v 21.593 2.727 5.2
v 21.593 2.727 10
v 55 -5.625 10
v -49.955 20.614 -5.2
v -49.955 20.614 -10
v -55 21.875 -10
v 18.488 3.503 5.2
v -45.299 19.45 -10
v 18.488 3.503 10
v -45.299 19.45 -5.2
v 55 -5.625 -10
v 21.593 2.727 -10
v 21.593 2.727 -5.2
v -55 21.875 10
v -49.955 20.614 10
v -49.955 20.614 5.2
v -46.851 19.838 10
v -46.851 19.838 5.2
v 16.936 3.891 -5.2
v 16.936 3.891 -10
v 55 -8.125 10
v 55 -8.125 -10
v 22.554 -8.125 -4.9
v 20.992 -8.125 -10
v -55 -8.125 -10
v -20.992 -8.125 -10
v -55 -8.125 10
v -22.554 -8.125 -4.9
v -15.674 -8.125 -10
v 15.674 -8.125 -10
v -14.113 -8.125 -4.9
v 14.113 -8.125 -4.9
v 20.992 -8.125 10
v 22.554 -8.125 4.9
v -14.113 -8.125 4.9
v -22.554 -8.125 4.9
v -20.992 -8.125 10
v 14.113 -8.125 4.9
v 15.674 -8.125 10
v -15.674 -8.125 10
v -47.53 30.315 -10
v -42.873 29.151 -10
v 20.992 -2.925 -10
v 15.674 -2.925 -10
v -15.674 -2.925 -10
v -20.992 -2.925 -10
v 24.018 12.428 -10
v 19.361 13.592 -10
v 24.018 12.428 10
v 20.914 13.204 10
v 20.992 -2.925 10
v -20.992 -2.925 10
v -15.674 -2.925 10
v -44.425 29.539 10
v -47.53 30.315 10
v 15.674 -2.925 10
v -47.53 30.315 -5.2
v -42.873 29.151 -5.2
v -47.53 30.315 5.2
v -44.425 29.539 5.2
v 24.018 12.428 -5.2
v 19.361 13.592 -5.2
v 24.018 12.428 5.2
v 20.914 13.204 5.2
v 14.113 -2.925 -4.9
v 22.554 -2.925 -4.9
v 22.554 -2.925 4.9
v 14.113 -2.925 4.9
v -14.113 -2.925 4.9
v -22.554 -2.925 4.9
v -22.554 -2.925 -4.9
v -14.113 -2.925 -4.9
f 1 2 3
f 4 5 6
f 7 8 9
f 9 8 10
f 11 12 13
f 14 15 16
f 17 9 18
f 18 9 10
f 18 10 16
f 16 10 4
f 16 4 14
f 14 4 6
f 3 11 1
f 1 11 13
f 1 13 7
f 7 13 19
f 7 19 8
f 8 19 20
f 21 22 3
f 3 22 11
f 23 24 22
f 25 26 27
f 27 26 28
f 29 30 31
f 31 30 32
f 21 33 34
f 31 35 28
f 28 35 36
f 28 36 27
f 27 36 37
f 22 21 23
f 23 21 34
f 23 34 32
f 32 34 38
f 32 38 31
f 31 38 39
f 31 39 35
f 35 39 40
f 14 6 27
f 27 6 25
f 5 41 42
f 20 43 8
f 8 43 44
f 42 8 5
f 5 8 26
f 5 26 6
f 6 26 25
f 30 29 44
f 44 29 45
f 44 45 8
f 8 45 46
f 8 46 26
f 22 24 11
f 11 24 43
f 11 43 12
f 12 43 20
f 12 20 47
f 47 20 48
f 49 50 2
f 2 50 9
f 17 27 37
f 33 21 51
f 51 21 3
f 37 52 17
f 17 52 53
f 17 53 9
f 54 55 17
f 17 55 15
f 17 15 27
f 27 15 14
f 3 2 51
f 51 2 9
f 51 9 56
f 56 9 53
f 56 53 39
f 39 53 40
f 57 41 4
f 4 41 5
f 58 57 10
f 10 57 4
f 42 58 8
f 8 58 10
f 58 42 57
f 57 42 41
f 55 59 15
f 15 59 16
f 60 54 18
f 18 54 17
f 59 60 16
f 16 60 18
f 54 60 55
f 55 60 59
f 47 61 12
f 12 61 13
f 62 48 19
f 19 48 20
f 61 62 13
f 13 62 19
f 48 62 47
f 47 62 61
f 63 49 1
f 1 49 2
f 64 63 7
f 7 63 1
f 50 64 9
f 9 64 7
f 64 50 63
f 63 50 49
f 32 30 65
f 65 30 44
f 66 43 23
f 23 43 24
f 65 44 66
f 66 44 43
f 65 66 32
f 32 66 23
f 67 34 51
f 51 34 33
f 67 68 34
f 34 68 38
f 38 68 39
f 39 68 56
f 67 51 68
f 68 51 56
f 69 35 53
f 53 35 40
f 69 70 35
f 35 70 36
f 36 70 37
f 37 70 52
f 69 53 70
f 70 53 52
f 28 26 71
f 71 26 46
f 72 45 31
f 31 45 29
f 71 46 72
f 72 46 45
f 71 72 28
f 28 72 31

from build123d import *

# Parameters (mm, degrees)
BOSS_EXTRUDE1_DEPTH      = 10
BOSS_EXTRUDE1_DEPTH_BACK = 10
SKETCH2_W                = 4.8
SKETCH2_H                = 4.8
SKETCH2_W_2              = 3.2
BOSS_EXTRUDE2_DEPTH      = 10
CUT_EXTRUDE1_DEPTH       = 5.2


with BuildPart() as part:
    # Sketch1 → Boss-Extrude1 (new, two sides: drawn at the far end of the back side and taken through both)
    with BuildSketch(Plane.XY.offset(-BOSS_EXTRUDE1_DEPTH_BACK)):
        Polygon((-55, 21.875), (55, -5.625), (55, -8.125), (-55, -8.125), align=None)
    extrude(amount=BOSS_EXTRUDE1_DEPTH + BOSS_EXTRUDE1_DEPTH_BACK)

    # Sketch2 → Boss-Extrude2 (add)
    with BuildSketch(Plane(origin=(1.911764706, 7.647058824, 0), x_dir=(0.970142500145332, -0.24253562503633289, 0), z_dir=(0.24253562503633289, 0.970142500145332, 0))):
        with Locations((-51.063304306, 7.6)):
            Rectangle(SKETCH2_W, SKETCH2_H)
        with Locations((-51.863304306, -7.6)):
            Rectangle(SKETCH2_W_2, SKETCH2_H)
        with Locations((18.686695694, -7.6)):
            Rectangle(SKETCH2_W_2, SKETCH2_H)
        with Locations((17.886695694, 7.6)):
            Rectangle(SKETCH2_W, SKETCH2_H)
    extrude(amount=BOSS_EXTRUDE2_DEPTH)

    # Sketch3 → Cut-Extrude1 (cut)
    with BuildSketch(Plane.XZ.offset(8.125)):
        Polygon((15.692093342, -10.058542854), (14.11294757, -4.9), (22.553719096, -4.9), (20.974573324, -10.058542854), align=None)
        Polygon((-20.974573324, -10.058542854), (-22.553719096, -4.9), (-14.11294757, -4.9), (-15.692093342, -10.058542854), align=None)
        Polygon((-20.974573324, 10.058542854), (-22.553719096, 4.9), (-14.11294757, 4.9), (-15.692093342, 10.058542854), align=None)
        Polygon((15.692093342, 10.058542854), (14.11294757, 4.9), (22.553719096, 4.9), (20.974573324, 10.058542854), align=None)
    extrude(amount=-CUT_EXTRUDE1_DEPTH, mode=Mode.SUBTRACT)


solid = part.part
